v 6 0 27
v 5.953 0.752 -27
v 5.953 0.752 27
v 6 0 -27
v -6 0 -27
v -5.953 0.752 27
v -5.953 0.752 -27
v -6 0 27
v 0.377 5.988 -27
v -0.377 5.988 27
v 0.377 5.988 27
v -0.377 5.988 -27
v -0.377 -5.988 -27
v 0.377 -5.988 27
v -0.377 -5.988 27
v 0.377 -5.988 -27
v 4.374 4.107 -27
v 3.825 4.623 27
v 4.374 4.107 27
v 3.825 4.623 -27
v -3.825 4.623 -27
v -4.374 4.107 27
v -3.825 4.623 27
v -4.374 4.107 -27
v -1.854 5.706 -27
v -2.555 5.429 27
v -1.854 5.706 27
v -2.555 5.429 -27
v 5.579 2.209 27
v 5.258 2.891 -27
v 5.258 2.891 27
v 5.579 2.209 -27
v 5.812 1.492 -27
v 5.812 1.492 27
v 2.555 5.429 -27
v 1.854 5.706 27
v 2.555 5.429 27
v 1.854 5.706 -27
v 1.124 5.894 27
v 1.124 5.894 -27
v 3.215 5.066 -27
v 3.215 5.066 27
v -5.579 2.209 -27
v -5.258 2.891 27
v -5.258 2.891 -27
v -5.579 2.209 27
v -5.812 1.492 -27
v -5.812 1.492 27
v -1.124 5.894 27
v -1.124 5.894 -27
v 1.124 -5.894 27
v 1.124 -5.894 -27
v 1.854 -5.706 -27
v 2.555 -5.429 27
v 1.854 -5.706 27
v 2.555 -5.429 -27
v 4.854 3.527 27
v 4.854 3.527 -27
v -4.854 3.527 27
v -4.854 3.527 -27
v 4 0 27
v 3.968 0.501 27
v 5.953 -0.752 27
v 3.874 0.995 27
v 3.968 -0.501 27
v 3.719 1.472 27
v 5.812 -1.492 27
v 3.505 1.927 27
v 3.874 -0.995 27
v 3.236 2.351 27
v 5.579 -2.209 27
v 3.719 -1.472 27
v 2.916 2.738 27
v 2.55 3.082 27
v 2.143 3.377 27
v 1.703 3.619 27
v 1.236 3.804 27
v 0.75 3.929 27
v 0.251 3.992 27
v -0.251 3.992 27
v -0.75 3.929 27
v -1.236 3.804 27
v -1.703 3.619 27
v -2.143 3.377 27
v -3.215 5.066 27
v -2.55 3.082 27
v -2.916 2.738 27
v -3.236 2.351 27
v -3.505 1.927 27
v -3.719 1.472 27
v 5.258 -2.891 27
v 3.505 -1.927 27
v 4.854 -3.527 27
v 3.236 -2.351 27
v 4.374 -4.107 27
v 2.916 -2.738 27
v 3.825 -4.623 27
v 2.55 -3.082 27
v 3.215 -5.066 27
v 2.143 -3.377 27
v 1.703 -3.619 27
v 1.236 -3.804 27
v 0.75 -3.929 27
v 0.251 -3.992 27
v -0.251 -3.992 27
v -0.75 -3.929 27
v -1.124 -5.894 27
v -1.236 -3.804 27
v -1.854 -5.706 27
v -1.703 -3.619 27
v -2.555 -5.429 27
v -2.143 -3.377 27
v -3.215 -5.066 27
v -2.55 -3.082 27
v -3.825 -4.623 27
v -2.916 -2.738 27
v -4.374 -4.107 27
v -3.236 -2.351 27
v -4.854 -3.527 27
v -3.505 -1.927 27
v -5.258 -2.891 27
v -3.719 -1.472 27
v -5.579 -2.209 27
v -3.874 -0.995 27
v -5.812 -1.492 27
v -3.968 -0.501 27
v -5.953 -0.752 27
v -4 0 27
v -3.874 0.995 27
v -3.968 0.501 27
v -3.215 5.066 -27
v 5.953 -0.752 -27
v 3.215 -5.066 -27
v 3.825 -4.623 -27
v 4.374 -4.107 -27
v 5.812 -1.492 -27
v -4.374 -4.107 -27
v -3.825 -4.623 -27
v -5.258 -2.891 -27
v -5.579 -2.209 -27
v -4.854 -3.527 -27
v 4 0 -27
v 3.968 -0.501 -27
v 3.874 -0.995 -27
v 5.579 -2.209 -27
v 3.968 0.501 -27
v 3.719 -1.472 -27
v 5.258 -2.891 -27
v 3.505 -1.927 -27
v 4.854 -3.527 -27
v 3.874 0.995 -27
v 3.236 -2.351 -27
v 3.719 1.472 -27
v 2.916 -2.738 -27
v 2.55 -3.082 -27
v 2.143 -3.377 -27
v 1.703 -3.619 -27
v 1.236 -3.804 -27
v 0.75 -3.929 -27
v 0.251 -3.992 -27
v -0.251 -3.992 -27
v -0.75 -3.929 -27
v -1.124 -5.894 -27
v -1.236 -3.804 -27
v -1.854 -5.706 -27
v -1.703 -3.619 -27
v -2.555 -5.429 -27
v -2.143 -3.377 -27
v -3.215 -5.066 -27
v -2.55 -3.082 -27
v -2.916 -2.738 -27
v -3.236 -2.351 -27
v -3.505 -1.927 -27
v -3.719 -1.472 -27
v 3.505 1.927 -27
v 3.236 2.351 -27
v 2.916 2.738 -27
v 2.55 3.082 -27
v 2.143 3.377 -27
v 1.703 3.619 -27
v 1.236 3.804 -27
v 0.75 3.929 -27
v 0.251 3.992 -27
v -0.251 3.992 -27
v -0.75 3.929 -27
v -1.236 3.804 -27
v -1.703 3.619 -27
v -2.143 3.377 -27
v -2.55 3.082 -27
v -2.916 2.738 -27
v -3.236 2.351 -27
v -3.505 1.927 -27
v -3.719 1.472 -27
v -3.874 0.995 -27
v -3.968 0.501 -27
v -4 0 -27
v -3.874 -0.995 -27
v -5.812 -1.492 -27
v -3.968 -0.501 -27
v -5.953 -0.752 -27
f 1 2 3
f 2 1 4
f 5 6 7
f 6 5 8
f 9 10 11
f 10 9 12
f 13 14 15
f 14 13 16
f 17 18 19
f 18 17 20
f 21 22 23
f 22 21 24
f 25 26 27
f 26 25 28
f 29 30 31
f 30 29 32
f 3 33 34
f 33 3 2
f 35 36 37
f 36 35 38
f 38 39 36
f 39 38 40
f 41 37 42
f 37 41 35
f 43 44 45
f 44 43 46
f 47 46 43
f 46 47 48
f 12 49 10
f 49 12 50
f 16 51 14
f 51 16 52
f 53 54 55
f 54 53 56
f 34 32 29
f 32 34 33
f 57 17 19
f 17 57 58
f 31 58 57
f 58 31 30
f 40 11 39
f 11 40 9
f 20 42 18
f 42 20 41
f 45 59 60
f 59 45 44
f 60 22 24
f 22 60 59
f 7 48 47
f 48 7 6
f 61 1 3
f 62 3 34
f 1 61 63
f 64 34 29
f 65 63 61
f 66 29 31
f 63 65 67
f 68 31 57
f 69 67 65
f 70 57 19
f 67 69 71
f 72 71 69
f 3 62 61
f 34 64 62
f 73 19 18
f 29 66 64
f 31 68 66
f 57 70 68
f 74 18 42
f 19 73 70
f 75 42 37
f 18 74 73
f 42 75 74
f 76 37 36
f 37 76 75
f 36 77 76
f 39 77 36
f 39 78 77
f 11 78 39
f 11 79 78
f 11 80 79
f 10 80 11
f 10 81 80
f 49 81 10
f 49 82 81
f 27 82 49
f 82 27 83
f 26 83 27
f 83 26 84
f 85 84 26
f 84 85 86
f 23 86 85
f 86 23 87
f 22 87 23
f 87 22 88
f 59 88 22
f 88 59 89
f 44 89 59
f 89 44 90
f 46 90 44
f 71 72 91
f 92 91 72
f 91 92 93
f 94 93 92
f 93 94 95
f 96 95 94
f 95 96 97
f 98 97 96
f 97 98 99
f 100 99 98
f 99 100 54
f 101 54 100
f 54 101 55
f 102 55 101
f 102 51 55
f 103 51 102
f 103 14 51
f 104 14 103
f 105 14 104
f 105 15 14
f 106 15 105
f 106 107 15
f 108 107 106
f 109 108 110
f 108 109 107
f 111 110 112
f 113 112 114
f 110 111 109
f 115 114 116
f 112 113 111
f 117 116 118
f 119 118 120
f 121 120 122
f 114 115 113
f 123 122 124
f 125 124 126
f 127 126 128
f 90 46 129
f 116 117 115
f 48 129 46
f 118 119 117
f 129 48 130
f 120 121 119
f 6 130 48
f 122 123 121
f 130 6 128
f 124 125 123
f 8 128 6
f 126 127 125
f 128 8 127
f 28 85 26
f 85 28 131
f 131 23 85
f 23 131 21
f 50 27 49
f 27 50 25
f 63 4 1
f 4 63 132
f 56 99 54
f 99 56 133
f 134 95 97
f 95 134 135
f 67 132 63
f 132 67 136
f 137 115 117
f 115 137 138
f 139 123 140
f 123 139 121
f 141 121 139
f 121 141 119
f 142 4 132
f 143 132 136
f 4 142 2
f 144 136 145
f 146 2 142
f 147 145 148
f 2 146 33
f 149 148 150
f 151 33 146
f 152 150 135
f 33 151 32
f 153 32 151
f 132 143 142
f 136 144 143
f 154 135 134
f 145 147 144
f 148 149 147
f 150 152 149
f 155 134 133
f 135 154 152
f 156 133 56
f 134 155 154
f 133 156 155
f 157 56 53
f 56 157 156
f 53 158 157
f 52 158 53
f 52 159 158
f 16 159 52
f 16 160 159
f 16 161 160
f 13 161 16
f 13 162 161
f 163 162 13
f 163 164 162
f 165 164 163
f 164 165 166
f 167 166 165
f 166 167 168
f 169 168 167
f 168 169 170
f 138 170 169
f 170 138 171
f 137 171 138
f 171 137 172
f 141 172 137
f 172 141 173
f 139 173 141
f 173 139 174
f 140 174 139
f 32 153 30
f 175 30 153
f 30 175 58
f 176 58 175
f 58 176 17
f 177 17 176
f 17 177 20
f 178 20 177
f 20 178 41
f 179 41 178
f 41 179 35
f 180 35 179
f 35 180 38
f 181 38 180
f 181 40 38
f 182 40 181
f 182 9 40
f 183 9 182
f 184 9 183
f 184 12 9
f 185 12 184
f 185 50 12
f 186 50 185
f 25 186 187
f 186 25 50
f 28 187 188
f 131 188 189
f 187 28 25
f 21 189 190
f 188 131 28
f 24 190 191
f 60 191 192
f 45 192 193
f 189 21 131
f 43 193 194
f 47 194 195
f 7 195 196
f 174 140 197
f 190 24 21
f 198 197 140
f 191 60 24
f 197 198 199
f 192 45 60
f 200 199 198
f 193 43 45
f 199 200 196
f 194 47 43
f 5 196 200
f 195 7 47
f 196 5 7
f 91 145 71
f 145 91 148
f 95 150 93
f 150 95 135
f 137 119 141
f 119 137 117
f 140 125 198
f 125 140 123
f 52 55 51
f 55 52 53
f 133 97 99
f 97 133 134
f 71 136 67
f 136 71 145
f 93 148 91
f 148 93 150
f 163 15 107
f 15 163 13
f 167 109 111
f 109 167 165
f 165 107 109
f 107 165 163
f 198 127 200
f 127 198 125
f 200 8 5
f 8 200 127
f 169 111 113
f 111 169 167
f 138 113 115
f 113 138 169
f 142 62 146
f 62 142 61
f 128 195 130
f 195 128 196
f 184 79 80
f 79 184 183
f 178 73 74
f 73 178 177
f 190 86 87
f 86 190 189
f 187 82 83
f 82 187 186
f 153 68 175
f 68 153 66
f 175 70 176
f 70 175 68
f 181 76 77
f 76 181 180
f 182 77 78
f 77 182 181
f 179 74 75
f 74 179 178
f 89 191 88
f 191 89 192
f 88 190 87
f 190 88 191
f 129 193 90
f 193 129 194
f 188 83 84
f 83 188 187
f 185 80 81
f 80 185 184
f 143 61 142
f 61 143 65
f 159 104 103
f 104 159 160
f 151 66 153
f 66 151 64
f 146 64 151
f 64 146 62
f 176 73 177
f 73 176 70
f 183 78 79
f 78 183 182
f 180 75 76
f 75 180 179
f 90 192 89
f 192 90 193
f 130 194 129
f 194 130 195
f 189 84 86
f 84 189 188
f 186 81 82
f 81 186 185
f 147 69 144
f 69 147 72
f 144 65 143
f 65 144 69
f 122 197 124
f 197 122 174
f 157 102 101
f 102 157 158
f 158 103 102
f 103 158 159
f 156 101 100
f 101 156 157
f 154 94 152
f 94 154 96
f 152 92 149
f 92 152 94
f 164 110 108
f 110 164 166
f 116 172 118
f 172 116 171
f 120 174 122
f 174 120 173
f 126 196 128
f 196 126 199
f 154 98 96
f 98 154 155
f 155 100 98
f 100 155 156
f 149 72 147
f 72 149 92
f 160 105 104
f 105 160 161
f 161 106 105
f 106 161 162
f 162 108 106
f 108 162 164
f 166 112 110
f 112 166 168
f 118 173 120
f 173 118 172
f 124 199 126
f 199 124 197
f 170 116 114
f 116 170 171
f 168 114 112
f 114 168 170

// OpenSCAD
$fn = 50;


difference() {
	union() {
		translate(v = [0, 0, -27.0000000000]) {
			cylinder(h = 54, r = 6.0000000000);
		}
	}
	union() {
		translate(v = [0, 0, -100.0000000000]) {
			cylinder(h = 200, r = 4);
		}
	}
}
